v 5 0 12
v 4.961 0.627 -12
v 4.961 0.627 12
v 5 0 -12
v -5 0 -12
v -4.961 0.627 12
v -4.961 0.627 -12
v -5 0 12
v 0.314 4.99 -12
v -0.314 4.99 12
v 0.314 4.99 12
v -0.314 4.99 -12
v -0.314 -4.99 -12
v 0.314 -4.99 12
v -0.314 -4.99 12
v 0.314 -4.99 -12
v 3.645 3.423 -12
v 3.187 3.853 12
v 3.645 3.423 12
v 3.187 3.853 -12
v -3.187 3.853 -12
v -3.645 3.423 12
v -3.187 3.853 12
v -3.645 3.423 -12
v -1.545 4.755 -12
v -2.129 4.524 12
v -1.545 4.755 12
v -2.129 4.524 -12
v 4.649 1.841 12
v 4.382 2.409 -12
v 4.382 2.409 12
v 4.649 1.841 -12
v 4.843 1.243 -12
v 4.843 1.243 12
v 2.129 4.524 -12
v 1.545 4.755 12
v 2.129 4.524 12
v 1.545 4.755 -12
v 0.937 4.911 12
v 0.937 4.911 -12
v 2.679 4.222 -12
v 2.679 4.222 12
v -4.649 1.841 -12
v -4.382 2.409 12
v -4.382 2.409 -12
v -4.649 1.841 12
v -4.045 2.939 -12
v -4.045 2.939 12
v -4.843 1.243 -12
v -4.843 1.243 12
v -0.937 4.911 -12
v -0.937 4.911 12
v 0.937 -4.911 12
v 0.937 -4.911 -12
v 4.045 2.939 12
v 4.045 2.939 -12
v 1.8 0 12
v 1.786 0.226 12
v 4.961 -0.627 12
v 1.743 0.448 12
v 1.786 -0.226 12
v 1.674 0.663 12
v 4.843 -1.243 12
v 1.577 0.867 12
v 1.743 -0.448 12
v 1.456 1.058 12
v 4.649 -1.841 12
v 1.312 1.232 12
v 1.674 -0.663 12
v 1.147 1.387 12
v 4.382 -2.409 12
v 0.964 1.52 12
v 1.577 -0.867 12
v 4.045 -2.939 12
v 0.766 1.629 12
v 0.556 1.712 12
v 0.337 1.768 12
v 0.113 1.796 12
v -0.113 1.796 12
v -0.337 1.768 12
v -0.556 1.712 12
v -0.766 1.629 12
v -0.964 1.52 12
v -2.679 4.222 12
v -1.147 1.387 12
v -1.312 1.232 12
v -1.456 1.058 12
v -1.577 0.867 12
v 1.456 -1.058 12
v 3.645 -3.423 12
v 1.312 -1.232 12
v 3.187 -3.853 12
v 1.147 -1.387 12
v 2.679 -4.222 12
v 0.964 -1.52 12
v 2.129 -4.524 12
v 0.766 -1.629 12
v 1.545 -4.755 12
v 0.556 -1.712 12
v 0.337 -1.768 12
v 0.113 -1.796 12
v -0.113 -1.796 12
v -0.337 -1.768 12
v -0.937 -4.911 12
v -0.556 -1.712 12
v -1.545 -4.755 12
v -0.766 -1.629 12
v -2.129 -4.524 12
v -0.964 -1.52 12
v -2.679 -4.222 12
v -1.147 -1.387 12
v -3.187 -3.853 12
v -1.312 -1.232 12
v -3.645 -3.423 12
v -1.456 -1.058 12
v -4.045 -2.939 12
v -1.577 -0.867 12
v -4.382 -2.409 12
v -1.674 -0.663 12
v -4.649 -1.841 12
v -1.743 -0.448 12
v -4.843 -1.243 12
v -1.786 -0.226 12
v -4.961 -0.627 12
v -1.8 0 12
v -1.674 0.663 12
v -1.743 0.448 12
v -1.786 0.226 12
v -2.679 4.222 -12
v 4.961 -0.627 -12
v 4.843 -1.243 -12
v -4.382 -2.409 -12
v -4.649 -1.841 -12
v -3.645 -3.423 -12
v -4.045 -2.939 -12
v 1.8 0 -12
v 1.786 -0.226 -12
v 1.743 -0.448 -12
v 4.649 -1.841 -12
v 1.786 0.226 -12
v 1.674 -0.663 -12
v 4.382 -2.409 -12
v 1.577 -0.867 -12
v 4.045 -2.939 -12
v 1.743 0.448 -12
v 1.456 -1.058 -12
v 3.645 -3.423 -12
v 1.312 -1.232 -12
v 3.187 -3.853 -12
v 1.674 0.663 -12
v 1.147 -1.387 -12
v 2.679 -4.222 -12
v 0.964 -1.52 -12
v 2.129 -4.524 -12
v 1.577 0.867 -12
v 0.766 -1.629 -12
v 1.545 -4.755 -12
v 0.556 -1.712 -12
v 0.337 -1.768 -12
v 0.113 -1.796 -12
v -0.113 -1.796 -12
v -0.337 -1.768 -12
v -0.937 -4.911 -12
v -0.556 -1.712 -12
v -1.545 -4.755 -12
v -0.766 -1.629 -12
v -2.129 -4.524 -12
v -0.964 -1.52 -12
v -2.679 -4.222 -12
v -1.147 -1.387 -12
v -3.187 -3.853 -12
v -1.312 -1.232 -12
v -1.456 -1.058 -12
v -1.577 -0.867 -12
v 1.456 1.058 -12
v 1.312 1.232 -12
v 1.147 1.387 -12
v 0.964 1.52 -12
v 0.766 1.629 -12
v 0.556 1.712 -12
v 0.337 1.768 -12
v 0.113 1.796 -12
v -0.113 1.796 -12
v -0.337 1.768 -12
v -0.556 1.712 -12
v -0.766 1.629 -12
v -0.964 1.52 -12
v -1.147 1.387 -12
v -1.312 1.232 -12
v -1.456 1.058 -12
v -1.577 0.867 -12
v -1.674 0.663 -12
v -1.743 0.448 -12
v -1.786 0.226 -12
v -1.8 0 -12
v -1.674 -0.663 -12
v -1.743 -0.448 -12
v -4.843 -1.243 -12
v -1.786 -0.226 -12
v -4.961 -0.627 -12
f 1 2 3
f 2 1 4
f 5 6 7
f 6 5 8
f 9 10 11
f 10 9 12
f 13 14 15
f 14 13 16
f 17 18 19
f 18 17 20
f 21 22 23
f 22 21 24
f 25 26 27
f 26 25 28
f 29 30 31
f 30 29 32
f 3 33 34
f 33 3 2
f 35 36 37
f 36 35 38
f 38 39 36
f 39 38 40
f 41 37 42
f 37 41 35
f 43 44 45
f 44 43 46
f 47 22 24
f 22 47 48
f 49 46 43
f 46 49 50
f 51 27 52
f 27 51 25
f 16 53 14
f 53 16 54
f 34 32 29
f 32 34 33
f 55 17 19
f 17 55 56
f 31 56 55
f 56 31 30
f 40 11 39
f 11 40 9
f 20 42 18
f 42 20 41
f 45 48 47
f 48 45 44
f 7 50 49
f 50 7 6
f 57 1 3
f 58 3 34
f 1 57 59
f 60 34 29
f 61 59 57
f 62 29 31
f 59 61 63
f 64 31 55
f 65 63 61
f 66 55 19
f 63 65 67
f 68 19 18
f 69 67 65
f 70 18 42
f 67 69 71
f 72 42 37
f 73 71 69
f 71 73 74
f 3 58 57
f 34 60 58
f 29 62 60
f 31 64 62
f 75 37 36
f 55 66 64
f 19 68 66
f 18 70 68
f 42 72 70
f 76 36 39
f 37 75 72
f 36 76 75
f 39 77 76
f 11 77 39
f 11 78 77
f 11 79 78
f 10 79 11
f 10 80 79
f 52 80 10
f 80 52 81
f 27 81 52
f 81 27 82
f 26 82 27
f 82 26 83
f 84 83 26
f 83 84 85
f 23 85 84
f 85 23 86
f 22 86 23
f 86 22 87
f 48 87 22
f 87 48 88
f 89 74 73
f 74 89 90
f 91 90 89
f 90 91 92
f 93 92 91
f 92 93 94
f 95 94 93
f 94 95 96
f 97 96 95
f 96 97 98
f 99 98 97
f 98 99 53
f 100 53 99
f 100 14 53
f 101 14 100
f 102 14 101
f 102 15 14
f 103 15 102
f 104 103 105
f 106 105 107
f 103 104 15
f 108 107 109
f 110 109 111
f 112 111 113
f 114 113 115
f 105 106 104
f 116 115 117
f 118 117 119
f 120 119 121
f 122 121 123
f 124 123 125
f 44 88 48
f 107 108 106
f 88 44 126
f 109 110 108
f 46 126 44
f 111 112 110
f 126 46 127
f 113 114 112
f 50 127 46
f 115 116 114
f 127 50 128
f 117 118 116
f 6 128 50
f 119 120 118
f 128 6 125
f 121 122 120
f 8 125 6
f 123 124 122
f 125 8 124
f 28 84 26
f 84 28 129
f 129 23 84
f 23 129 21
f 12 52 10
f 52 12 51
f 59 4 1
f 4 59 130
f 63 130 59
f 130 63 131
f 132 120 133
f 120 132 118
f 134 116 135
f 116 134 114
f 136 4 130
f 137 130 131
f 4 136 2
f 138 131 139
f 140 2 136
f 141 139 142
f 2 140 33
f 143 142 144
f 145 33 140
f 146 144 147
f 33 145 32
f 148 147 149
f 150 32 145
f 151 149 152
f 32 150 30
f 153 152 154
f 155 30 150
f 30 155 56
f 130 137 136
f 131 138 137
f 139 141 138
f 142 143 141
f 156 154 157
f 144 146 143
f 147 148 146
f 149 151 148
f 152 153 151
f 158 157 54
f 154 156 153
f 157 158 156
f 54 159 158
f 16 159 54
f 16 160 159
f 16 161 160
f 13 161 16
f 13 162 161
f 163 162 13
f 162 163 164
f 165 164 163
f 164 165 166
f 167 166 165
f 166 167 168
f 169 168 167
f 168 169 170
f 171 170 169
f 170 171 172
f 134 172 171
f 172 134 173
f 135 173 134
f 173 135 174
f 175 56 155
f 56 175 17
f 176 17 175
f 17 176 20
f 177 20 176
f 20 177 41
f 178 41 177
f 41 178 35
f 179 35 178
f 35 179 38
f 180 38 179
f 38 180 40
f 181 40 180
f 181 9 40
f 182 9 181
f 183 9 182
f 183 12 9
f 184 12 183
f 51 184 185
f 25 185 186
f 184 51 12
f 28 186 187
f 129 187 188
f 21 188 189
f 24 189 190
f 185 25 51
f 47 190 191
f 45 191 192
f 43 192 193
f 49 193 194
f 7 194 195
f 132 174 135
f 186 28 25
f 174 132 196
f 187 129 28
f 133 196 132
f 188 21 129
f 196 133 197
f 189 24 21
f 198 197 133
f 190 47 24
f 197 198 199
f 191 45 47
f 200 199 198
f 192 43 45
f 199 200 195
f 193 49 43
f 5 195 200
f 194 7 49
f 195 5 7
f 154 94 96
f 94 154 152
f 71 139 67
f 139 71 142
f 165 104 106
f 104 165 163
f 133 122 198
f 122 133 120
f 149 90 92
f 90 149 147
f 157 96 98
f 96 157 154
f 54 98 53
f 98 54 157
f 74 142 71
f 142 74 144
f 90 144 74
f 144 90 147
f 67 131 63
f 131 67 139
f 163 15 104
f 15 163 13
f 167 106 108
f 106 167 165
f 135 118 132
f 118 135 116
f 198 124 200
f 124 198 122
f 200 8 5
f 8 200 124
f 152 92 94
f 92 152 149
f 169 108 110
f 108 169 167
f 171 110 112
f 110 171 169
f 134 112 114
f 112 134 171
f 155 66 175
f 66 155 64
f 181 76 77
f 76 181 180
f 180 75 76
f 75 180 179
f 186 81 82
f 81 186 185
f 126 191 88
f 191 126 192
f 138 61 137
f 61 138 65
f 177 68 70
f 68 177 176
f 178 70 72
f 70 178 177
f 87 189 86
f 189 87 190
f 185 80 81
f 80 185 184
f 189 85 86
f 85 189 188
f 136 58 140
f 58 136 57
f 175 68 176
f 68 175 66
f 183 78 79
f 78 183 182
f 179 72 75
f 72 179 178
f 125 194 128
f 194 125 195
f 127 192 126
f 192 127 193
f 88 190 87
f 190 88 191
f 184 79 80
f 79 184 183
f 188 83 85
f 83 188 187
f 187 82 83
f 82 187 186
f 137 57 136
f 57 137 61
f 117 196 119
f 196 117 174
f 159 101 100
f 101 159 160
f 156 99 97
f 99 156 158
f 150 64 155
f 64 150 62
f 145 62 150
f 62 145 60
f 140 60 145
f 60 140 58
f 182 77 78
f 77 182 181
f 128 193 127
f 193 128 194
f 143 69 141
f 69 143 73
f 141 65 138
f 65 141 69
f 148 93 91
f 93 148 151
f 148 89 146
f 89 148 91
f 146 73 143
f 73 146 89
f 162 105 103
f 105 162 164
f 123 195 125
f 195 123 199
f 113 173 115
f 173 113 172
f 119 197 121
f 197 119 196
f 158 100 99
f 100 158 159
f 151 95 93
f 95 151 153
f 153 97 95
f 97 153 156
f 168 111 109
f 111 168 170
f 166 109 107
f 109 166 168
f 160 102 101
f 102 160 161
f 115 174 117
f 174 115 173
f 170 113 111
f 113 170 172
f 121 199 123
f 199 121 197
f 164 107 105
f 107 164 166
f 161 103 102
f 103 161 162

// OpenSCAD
$fn = 50;


difference() {
	union() {
		translate(v = [0, 0, -12.0000000000]) {
			cylinder(h = 24, r = 5.0000000000);
		}
	}
	union() {
		translate(v = [0, 0, -100.0000000000]) {
			cylinder(h = 200, r = 1.8000000000);
		}
	}
}
